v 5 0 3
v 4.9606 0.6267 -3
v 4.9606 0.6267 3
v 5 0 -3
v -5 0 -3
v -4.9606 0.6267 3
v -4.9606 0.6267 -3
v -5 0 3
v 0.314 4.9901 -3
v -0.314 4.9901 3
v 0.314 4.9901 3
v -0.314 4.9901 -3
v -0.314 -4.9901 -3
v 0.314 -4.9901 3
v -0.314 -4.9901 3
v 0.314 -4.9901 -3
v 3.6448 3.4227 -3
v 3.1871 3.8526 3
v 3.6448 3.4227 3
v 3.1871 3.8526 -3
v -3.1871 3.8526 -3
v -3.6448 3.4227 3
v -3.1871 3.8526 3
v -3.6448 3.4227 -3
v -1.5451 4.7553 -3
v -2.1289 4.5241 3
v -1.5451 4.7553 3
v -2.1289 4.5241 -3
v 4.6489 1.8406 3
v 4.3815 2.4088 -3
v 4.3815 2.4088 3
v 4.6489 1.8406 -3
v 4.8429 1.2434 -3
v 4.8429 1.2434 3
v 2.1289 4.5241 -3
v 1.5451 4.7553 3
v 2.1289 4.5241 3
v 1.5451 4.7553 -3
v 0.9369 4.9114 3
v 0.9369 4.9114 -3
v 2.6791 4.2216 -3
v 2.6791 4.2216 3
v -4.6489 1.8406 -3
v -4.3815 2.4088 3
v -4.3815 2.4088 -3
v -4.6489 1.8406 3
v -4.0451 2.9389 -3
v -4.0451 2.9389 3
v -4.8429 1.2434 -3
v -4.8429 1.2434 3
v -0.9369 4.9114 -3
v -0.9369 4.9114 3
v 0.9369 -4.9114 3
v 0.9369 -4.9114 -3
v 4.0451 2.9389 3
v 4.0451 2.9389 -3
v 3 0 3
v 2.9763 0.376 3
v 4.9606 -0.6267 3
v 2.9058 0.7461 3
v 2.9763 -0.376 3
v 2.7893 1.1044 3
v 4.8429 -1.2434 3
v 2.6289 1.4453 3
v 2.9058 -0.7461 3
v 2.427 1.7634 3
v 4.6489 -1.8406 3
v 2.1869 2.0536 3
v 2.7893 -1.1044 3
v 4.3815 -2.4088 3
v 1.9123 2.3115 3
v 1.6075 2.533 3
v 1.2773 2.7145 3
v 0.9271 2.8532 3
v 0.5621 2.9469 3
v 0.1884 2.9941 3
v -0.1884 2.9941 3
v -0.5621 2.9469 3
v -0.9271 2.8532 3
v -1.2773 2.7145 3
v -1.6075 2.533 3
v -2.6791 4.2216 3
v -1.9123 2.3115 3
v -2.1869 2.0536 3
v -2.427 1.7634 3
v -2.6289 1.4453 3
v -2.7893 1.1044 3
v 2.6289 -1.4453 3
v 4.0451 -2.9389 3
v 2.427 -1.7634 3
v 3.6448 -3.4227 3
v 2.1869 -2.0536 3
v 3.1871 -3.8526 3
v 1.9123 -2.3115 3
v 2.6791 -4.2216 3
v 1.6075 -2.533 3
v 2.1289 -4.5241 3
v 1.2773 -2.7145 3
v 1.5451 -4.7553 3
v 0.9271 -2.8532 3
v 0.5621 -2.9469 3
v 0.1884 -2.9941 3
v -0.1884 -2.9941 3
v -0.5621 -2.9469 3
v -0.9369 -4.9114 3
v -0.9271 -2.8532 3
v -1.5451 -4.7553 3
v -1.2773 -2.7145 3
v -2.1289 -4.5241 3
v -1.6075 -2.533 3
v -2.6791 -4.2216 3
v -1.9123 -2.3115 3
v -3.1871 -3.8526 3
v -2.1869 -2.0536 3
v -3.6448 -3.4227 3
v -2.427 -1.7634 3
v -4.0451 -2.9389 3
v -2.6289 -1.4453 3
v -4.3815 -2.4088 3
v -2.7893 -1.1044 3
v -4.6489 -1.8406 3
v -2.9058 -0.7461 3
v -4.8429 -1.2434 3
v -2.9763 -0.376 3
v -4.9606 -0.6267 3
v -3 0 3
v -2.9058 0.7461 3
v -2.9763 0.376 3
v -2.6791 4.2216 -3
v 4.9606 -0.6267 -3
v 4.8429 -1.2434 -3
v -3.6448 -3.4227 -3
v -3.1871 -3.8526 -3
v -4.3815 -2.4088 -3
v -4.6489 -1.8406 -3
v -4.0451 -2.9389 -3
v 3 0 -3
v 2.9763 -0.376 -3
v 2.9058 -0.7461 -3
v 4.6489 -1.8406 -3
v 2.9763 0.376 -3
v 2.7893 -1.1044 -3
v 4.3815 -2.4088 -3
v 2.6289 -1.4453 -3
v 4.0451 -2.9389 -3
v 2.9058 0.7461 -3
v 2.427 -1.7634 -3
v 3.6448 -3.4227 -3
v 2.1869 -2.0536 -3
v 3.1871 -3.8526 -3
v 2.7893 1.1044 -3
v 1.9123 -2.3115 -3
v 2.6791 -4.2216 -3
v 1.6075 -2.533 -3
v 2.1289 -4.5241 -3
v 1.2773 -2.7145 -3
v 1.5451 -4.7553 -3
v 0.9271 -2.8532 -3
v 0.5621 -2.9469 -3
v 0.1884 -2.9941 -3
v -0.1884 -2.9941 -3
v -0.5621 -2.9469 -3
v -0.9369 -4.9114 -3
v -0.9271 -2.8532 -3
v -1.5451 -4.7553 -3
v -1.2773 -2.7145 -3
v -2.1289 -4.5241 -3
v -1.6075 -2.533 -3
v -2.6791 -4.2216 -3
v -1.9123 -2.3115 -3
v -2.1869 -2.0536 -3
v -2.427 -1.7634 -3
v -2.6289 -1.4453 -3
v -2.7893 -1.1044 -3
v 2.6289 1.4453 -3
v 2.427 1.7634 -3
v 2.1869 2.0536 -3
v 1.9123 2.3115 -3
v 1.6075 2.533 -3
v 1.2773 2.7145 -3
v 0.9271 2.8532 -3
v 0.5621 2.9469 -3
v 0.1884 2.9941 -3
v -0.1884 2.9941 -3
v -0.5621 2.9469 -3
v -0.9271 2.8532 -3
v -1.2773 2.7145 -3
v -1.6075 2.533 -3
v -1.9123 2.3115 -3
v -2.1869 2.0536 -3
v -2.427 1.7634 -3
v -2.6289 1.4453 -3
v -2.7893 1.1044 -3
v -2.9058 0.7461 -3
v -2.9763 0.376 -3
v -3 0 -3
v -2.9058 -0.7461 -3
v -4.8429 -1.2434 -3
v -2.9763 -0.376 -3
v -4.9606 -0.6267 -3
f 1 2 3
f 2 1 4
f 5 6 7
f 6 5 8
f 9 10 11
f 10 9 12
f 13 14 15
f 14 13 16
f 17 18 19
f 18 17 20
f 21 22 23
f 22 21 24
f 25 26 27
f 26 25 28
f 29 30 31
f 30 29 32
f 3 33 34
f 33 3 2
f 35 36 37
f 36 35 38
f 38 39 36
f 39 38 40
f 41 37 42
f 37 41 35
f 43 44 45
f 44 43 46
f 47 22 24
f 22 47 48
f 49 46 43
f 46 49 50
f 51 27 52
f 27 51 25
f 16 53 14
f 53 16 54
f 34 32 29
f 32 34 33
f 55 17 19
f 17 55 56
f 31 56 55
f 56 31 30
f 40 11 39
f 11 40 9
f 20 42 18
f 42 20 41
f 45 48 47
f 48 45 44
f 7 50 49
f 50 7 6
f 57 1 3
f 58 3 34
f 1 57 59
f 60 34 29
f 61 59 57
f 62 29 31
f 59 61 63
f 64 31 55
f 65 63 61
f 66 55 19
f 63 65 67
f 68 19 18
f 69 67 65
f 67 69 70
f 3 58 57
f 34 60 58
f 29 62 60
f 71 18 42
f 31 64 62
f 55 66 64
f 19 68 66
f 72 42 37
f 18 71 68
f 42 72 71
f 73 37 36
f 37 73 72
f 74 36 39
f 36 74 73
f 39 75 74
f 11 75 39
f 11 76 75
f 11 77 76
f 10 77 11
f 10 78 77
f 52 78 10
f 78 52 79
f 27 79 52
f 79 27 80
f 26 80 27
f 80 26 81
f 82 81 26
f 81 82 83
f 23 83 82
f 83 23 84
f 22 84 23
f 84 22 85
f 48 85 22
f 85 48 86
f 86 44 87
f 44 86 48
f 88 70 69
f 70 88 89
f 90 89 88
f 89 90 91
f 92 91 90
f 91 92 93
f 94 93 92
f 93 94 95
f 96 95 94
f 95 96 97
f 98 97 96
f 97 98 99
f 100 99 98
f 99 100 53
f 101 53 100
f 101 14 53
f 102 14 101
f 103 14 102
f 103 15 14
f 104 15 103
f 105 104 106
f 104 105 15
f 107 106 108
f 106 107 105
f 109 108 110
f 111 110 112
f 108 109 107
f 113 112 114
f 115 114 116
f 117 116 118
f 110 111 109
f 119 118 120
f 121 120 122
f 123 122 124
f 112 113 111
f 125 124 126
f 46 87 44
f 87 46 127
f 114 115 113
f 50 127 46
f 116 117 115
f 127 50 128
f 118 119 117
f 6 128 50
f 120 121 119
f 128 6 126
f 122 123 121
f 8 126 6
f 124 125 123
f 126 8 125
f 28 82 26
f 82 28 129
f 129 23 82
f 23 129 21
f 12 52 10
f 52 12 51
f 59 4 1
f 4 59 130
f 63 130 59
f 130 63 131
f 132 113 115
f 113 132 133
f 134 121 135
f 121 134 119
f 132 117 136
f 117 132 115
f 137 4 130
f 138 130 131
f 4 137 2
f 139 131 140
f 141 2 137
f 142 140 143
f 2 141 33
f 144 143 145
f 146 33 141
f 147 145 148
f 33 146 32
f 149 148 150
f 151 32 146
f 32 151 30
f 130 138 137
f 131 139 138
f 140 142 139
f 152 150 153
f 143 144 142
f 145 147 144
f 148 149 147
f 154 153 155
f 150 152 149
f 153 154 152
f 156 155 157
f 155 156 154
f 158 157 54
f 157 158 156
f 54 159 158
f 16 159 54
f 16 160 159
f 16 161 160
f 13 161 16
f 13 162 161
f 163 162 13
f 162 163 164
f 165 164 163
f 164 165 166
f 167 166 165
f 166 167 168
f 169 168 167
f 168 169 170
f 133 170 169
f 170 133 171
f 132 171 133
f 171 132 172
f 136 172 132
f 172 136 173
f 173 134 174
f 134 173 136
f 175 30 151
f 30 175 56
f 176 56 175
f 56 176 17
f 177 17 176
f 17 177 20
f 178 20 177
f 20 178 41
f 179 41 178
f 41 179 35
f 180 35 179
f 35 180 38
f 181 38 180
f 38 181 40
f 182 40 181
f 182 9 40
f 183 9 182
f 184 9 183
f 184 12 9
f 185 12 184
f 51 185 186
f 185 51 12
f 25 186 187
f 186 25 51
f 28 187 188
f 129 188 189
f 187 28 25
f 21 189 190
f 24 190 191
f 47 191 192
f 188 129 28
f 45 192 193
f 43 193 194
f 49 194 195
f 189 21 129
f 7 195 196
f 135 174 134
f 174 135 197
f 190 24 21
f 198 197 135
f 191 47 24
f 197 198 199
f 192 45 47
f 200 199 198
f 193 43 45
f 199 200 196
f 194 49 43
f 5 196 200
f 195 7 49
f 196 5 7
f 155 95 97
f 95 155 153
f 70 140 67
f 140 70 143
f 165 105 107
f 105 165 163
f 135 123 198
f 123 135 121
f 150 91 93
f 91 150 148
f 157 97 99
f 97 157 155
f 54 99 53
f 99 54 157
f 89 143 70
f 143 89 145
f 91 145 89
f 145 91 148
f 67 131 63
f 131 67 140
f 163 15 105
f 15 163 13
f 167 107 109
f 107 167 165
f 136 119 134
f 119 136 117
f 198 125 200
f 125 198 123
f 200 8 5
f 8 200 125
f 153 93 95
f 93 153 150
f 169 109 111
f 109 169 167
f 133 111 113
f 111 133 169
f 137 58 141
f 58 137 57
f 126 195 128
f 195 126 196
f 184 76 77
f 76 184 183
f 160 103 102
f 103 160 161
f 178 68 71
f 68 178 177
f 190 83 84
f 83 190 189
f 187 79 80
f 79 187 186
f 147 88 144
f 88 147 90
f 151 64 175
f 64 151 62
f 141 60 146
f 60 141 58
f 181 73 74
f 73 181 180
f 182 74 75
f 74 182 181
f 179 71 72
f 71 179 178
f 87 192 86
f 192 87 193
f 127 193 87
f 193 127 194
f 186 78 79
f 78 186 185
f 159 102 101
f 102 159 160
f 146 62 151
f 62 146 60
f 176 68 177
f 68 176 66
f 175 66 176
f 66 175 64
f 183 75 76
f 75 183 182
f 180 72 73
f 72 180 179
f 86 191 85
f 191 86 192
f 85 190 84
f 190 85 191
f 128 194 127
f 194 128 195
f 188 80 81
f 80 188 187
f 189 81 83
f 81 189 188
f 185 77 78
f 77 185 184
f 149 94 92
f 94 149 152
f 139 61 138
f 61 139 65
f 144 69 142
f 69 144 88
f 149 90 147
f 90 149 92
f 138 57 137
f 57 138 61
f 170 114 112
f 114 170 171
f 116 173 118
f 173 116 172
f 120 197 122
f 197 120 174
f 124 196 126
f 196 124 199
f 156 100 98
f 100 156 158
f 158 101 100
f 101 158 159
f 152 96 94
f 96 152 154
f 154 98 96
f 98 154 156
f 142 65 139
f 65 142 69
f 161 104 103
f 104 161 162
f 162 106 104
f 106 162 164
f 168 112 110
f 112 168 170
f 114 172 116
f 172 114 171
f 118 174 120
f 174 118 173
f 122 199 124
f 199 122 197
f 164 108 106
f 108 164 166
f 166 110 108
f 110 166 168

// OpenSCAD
$fn = 50;


difference() {
	union() {
		translate(v = [0, 0, -3.0000000000]) {
			cylinder(h = 6, r = 5.0000000000);
		}
	}
	union() {
		translate(v = [0, 0, -100.0000000000]) {
			cylinder(h = 200, r = 3);
		}
	}
}
